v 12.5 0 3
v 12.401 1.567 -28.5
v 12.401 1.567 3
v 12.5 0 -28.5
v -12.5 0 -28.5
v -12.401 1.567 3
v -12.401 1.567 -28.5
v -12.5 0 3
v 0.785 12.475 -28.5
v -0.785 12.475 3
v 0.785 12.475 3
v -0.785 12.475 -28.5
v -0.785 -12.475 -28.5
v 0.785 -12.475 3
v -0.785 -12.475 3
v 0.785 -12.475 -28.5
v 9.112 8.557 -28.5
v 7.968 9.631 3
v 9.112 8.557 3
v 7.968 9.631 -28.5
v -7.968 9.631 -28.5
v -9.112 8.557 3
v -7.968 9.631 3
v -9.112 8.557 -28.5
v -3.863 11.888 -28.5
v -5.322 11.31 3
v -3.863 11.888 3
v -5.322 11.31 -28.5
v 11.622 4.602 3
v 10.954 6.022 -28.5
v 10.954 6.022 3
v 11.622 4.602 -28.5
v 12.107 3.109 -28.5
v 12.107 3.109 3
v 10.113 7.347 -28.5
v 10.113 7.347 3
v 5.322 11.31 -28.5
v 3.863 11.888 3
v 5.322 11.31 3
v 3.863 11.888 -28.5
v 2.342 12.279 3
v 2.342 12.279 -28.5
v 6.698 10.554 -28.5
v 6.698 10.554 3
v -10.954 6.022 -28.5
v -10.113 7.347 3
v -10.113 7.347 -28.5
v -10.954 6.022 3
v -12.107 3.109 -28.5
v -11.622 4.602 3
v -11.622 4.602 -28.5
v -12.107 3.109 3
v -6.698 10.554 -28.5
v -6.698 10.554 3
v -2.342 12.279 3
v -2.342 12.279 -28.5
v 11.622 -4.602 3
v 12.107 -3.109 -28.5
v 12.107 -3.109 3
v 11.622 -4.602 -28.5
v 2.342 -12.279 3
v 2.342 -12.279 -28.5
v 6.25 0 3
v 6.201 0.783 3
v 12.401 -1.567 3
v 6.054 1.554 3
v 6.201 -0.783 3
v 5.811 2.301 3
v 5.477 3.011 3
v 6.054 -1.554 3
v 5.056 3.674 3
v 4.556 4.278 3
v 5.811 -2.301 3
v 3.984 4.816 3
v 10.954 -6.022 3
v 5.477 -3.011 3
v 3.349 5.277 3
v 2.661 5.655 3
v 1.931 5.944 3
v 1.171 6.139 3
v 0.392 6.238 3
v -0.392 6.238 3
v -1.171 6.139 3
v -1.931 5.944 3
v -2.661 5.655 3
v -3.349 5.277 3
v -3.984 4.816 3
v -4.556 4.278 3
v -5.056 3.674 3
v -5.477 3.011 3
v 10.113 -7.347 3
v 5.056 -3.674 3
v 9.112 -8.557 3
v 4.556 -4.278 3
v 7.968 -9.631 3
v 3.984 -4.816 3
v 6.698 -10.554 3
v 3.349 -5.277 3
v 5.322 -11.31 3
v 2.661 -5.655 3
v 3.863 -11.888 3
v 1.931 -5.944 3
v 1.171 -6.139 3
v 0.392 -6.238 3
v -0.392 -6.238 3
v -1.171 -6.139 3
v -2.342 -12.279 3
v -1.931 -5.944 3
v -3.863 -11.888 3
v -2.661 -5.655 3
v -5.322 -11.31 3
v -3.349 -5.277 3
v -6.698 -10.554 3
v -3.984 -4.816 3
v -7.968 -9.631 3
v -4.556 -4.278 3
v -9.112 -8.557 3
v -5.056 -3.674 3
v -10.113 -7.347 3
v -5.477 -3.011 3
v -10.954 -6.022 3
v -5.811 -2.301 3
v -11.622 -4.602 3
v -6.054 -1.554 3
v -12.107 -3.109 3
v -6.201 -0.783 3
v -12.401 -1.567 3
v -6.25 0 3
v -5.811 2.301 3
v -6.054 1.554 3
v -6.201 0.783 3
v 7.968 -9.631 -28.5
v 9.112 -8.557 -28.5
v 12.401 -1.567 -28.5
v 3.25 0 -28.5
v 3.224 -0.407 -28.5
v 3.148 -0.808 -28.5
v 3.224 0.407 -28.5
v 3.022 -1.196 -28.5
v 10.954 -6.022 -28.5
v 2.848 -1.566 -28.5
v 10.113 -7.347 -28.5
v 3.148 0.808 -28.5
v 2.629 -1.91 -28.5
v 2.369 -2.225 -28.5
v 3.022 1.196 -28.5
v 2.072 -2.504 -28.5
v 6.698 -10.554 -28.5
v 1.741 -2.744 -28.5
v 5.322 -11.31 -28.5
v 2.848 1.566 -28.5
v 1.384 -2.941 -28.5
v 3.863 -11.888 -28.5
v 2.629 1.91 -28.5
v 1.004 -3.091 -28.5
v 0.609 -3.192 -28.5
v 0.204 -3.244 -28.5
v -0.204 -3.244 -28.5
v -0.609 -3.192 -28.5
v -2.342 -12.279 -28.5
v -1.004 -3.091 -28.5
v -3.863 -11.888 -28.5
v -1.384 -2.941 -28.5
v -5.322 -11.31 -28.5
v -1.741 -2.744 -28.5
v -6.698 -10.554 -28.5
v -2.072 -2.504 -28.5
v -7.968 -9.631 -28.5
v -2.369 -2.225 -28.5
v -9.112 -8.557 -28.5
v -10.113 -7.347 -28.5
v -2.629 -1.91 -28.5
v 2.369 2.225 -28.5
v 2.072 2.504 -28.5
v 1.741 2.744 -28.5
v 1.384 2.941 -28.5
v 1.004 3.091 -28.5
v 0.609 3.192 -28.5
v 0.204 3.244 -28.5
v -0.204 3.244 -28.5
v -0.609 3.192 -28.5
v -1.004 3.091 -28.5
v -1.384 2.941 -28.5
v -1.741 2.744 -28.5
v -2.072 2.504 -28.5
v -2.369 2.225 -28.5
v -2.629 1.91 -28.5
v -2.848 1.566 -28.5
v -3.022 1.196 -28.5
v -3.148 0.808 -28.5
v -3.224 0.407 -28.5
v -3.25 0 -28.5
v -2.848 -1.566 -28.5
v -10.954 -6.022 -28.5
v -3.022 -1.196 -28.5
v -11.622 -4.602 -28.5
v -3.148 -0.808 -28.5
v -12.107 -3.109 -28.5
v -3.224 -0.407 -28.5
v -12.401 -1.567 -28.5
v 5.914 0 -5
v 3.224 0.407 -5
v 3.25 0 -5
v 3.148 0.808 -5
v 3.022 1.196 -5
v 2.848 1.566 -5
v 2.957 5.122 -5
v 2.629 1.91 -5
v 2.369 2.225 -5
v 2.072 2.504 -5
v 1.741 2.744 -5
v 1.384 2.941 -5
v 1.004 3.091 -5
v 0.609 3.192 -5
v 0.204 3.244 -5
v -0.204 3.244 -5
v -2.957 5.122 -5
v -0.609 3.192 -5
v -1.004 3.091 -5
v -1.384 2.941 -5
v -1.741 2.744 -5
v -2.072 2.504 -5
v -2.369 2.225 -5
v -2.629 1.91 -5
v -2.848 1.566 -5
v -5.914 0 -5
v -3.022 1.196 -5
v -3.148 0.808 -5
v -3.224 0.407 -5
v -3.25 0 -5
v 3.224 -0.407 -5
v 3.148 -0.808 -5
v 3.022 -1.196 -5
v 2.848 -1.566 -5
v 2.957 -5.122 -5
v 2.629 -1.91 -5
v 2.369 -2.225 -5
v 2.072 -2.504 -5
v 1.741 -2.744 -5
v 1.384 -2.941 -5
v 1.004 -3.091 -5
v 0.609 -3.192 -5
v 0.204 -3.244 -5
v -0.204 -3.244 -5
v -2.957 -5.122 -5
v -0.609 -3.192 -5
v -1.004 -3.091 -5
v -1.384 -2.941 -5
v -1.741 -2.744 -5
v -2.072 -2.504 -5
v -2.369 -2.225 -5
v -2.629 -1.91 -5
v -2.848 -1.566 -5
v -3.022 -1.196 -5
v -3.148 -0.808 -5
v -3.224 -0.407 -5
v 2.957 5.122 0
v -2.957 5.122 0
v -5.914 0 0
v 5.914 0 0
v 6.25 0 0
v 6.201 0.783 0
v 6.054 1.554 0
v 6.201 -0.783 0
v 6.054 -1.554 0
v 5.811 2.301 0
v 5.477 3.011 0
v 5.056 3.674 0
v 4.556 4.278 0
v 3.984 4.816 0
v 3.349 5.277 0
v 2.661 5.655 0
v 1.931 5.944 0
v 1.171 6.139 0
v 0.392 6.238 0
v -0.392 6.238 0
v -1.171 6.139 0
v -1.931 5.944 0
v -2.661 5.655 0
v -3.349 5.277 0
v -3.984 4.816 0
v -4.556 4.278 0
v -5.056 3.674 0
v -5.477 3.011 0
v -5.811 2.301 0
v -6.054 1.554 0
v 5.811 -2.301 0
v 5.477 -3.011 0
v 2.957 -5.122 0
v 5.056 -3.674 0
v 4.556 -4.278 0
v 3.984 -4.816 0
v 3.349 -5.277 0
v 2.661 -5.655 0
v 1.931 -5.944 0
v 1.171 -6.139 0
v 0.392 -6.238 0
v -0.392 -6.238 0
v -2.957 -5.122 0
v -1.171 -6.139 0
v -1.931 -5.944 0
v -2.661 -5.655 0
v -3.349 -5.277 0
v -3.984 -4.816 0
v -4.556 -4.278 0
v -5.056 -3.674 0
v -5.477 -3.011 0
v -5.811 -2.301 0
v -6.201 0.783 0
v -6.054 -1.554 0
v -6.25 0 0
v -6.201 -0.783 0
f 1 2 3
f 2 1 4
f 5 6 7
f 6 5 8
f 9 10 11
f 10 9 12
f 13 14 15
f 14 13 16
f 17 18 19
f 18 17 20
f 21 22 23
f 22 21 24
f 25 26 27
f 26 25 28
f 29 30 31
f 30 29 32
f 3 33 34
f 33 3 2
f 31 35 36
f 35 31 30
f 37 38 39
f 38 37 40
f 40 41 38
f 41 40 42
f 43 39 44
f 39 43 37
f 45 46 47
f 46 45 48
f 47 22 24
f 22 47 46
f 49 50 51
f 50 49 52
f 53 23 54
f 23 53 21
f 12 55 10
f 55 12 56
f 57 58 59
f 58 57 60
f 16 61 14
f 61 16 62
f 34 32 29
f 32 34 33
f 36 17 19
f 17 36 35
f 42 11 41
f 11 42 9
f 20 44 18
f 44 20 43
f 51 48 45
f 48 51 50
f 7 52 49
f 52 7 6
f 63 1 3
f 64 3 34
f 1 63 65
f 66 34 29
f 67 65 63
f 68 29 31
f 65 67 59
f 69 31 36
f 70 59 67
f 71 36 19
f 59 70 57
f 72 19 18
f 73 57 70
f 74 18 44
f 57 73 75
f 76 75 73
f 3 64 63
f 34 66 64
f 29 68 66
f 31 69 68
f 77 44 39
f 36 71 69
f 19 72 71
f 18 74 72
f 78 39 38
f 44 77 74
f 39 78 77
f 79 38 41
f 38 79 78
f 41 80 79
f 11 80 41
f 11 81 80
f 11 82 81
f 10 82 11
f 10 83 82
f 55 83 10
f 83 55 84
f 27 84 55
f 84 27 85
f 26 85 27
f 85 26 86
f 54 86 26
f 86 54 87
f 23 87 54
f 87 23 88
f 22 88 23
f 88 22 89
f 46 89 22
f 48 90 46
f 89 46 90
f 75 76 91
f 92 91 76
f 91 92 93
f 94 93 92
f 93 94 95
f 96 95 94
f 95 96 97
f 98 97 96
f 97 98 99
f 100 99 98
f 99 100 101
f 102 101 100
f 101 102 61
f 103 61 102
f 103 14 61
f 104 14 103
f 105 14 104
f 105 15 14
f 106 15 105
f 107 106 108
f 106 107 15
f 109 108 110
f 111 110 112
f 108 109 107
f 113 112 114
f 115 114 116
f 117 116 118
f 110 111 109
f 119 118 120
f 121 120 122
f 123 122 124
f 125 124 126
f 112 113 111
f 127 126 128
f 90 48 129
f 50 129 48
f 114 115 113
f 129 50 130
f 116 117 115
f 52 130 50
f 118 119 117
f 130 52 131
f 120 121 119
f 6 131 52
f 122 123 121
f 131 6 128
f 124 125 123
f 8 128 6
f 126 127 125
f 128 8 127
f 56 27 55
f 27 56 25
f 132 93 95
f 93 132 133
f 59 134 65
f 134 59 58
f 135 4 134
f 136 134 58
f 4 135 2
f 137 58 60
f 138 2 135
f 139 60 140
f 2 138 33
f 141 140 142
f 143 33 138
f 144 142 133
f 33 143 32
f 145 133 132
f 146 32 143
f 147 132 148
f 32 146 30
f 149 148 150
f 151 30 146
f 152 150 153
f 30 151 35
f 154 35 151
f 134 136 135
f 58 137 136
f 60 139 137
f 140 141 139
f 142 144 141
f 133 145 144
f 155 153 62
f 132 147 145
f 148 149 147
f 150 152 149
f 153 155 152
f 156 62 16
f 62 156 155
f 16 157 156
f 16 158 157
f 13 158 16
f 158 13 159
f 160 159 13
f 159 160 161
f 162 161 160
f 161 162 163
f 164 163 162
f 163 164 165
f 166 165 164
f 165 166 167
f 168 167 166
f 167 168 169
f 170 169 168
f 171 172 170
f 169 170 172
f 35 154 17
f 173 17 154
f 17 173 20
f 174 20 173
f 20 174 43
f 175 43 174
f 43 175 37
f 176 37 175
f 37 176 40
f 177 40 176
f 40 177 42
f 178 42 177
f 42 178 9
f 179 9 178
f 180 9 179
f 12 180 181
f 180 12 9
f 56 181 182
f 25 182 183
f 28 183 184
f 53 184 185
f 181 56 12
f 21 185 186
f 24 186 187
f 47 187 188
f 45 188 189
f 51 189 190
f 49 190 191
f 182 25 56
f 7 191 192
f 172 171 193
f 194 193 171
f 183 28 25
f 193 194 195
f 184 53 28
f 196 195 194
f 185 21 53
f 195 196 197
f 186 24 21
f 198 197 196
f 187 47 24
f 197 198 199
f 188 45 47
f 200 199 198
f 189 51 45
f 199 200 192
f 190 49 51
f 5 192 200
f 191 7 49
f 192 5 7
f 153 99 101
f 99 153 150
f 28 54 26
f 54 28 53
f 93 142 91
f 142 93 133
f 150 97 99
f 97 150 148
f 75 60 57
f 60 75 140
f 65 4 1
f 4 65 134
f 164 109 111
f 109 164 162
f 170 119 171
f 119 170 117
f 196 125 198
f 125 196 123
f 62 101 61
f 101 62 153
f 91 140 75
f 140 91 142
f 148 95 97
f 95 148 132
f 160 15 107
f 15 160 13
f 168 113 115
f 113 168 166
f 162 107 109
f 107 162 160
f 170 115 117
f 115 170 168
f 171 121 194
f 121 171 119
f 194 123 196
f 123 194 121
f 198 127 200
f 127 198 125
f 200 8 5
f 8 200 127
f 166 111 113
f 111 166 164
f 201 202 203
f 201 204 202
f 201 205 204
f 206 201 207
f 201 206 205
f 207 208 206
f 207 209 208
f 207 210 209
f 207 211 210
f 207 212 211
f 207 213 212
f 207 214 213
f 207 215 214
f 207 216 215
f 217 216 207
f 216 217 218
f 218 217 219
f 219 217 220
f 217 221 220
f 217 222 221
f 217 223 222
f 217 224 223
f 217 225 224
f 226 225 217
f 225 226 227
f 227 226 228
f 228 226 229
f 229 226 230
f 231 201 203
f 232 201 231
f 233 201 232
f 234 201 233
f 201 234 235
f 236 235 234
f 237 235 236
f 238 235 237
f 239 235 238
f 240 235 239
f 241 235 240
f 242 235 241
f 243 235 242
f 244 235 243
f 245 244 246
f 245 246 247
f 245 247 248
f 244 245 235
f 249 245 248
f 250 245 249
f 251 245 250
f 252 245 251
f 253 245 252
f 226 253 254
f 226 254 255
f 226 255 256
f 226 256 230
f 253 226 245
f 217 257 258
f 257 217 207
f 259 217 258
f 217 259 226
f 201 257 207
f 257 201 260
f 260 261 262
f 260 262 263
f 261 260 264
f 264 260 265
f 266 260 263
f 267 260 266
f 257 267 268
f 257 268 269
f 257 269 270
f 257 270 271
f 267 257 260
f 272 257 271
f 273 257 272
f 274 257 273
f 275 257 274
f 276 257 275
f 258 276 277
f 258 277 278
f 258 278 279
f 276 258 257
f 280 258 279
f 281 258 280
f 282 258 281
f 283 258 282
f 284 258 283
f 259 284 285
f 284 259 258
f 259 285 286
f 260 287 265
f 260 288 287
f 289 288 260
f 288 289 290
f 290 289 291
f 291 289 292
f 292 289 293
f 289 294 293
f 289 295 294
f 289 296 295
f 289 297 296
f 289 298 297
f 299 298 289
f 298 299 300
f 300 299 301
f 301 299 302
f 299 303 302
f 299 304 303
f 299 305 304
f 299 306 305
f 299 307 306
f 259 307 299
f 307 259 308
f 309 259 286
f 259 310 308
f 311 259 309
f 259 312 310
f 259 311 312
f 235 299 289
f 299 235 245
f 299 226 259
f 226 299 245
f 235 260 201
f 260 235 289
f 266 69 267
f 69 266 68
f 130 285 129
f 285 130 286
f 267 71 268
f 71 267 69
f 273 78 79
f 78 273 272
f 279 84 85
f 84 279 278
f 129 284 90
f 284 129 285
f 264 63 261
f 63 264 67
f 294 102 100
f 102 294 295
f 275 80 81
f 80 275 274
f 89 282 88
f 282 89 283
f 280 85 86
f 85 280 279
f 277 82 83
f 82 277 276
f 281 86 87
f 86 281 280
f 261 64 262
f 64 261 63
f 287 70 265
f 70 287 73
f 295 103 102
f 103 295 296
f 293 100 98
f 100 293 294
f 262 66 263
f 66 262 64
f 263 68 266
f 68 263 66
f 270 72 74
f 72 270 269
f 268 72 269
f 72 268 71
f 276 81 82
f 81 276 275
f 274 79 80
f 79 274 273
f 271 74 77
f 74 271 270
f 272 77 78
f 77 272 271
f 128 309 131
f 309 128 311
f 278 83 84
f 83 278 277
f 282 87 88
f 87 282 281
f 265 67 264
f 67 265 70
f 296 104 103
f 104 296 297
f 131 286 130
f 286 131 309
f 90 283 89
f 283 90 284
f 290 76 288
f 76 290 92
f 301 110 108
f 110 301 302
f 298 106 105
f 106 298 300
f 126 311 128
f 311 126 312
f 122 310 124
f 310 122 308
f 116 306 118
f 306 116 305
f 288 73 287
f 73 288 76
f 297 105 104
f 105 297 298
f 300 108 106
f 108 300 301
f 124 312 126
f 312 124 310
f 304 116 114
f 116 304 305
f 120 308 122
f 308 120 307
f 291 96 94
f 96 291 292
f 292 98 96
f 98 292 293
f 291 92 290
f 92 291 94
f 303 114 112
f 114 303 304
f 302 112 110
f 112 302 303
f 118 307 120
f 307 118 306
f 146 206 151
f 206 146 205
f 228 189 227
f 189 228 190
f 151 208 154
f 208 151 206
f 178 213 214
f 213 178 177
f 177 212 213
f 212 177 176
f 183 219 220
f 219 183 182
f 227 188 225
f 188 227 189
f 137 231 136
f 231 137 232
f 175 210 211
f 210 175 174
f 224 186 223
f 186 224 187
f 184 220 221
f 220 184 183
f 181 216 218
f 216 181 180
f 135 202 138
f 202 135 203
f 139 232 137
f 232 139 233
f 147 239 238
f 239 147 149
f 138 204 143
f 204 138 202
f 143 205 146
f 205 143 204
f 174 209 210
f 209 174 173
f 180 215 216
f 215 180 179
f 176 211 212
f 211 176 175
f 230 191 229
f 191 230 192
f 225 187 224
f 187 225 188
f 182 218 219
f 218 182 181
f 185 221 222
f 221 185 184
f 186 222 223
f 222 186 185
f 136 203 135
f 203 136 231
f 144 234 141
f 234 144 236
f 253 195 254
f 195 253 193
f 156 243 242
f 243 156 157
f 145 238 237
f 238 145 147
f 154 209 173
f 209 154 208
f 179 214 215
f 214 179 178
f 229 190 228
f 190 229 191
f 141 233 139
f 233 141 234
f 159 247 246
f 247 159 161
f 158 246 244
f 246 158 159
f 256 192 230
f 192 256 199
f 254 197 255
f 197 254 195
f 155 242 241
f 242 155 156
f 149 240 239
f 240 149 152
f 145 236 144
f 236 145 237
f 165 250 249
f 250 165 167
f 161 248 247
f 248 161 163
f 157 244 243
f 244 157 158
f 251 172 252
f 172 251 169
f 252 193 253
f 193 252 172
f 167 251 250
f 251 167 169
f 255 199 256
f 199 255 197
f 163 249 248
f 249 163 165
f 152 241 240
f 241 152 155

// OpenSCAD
$fn = 50;

difference() {
	union() {
		translate(v = [0, 0, -28.5]) {
			cylinder(h = 31.5, r = 12.5);
		}
		#translate(v = [0, 0, -30.0]) {
			cylinder(h = 30, r = 2.875);
		}
	}
	union() {
		translate(v = [0, 0, 0]) {
			rotate(a = [0, 0, 0]) {
				difference() {
					union() {
						translate(v = [0, 0, -5]) {
							linear_extrude(height = 5) {
								polygon(points = [[5.914249999999999, 0.0], [2.957125, 5.1218907443321156], [-2.9571249999999982, 5.1218907443321156], [-5.914249999999999, 7.242867331857232e-16], [-2.9571250000000022, -5.121890744332115], [2.9571249999999956, -5.121890744332118]]);
							}
						}
					}
					union();
				}
			}
		}
		#cylinder(h = 3, r = 6.25);
		#translate(v = [0, 0, -100.0]) {
			cylinder(h = 200, r = 3.25);
		}
	}
}
